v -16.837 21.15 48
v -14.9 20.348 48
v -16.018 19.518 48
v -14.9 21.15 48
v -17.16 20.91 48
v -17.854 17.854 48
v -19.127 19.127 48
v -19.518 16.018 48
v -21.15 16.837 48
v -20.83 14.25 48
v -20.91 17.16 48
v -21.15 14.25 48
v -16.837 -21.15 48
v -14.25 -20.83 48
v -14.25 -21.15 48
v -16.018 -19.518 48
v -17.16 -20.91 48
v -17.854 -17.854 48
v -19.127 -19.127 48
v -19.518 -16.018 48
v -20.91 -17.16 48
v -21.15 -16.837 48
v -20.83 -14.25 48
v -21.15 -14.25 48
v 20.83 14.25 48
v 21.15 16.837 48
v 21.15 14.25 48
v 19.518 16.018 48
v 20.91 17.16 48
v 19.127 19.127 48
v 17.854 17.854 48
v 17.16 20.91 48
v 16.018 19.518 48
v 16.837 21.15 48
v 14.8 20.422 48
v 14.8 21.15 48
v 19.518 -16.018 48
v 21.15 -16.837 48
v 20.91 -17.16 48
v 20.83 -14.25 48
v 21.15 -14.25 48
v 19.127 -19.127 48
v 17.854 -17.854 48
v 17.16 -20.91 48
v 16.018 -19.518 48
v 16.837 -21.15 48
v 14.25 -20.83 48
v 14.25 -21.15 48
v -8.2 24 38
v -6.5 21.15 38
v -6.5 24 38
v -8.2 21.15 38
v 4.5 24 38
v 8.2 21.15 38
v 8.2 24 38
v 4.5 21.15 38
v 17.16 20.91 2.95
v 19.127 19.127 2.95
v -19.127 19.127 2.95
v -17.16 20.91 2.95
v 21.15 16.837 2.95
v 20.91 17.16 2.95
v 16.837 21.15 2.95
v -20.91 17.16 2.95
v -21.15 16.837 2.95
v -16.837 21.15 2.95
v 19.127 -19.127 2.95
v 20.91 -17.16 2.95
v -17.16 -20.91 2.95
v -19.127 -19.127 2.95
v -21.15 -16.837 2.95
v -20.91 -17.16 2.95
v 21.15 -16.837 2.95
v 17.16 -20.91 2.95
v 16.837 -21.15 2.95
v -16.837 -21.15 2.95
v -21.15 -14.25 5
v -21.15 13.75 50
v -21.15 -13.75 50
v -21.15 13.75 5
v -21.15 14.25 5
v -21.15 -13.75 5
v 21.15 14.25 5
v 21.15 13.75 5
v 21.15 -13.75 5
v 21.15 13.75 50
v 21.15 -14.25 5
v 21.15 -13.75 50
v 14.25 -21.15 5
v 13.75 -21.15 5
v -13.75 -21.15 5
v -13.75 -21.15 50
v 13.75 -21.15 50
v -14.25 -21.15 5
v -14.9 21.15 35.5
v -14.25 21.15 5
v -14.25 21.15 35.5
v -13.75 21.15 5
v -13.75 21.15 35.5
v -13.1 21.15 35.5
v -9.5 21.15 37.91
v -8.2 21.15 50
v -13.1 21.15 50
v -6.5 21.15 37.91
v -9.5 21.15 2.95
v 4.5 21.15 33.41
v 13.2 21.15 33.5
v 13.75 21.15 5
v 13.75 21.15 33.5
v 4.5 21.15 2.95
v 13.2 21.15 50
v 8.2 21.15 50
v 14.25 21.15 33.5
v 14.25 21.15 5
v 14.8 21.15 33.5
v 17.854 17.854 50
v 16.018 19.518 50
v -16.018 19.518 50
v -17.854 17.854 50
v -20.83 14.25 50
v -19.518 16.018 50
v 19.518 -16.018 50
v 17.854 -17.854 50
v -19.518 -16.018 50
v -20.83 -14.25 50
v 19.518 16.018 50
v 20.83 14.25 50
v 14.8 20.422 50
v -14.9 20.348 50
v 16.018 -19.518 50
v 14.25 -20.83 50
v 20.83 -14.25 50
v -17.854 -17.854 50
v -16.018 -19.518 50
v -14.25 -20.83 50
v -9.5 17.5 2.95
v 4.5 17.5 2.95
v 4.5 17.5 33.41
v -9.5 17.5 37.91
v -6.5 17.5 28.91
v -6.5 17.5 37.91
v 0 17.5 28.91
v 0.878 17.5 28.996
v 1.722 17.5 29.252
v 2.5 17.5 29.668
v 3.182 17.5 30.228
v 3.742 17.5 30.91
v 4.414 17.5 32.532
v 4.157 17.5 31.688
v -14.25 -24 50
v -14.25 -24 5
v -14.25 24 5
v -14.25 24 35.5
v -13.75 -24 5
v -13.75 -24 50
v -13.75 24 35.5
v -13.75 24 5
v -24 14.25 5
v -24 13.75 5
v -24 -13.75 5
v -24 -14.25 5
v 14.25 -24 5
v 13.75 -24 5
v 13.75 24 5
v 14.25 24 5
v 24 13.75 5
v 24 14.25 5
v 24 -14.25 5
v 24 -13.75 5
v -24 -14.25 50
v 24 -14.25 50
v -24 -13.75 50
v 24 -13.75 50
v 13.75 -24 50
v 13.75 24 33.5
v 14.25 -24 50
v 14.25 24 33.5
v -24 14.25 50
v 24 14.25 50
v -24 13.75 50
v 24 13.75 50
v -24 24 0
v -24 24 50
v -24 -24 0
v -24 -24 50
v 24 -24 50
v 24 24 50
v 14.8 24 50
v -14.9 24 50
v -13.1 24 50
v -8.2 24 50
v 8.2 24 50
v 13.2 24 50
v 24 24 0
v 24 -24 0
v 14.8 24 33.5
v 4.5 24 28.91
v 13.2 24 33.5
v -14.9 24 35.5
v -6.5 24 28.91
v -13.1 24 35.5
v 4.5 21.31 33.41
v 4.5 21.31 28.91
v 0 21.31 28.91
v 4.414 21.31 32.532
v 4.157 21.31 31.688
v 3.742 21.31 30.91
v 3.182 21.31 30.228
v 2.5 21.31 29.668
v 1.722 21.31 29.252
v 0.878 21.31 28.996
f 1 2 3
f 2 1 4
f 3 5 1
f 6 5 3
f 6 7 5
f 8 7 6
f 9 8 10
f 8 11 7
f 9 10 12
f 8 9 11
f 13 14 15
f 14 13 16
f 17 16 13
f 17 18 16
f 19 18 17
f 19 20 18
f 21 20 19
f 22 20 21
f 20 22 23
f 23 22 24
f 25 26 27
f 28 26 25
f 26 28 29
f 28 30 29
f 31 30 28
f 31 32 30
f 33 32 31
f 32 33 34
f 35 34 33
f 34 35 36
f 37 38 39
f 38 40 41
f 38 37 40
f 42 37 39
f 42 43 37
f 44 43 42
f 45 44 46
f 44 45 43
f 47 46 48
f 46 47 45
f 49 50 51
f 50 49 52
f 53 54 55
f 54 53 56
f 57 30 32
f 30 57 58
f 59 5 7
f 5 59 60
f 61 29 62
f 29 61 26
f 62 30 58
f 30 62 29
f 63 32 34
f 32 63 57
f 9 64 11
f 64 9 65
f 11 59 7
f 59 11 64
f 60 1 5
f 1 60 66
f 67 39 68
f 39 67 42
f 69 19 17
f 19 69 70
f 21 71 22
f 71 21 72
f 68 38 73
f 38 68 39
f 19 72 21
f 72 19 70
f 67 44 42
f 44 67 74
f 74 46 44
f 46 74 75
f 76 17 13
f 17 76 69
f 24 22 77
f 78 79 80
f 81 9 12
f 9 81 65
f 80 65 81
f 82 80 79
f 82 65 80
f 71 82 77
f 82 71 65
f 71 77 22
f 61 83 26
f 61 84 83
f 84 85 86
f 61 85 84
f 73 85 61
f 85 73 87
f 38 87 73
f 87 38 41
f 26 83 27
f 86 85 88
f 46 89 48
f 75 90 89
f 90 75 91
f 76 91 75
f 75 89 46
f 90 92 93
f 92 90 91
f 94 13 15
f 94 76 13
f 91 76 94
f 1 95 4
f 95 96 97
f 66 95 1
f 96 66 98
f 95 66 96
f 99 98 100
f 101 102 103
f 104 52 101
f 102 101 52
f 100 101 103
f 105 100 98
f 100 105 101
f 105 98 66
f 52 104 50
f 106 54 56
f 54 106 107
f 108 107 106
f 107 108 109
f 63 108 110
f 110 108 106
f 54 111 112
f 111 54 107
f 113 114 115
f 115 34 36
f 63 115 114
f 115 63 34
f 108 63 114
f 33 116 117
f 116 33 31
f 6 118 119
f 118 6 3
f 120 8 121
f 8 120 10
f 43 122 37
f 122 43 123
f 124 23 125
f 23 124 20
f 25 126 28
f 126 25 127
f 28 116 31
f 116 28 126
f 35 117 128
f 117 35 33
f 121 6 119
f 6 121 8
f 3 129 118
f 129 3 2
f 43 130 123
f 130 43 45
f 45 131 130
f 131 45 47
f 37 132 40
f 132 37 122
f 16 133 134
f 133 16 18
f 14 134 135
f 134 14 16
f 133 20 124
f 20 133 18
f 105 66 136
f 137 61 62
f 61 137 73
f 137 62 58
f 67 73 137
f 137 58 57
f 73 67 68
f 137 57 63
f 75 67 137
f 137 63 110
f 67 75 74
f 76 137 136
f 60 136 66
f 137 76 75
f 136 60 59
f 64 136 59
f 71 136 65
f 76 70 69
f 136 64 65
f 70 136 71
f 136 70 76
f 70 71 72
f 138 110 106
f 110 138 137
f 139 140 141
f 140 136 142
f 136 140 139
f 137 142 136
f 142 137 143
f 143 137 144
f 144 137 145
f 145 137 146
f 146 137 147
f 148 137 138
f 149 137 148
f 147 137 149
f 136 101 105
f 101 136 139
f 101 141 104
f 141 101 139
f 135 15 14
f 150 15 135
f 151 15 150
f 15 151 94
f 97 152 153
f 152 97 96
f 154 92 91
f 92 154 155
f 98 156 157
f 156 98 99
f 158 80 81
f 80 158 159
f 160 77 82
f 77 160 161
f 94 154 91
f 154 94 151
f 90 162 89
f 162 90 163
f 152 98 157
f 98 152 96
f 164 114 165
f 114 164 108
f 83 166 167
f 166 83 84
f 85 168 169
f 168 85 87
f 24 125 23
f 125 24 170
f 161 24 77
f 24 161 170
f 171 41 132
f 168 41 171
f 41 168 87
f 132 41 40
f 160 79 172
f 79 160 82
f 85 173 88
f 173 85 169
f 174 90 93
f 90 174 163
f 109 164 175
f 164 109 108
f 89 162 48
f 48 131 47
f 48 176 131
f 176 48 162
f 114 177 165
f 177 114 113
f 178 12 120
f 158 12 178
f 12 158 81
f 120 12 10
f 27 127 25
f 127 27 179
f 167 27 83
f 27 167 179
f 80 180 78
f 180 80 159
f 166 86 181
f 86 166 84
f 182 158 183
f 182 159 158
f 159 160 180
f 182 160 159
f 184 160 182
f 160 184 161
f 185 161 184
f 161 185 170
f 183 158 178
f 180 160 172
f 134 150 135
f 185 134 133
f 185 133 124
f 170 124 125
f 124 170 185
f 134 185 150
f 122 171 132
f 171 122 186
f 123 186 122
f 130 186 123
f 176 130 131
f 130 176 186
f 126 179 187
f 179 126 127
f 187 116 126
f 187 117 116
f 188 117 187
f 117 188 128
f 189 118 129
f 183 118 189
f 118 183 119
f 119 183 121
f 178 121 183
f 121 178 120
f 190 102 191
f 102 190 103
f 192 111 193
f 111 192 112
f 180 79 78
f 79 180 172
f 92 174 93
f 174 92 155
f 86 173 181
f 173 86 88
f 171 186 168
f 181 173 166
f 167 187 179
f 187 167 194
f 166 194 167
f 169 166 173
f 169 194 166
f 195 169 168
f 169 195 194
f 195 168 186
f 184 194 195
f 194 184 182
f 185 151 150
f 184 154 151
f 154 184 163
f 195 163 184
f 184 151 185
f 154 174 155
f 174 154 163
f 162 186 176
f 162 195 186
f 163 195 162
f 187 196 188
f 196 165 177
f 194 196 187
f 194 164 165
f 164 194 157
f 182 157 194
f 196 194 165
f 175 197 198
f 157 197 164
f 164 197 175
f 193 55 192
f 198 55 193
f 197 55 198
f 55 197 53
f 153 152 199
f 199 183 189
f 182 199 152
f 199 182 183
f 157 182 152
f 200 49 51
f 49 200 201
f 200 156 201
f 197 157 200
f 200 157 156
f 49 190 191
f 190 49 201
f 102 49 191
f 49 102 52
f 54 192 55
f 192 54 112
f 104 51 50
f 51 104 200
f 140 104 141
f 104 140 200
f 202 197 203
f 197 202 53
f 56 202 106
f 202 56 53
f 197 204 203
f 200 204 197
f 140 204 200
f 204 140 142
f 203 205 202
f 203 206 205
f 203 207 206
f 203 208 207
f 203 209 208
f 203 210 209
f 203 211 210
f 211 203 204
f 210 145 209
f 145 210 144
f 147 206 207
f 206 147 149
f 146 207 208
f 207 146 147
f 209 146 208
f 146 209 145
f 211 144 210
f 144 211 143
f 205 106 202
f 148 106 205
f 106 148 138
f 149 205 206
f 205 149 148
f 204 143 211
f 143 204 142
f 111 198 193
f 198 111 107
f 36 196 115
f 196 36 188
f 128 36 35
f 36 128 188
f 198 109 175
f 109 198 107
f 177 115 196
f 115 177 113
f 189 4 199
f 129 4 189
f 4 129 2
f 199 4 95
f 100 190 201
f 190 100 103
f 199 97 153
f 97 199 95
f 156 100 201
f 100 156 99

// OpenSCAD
module electronics_case() {
    difference() {
        translate([0, 0, 25]) cube([42+2*3, 42+2*3, 50], center=true);
        difference() {
            translate([0, 0, 50-2-5]) cube([42.3, 42.3, 10], center=true);
            difference() {
                translate([0, 0, 43]) cube([100, 100, 10], center=true);
                translate([0, 0, 35]) cylinder(d=54.1, h=20, $fn=64);
            }
        }
        difference() {
            translate([0, 0, 50-1]) cube([42.3, 42.3, 8], center=true);
            difference() {
                translate([0, 0, 49]) cube([100, 100, 8], center=true);
                translate([0, 0, 40]) cylinder(d=50.5, h=20, $fn=64);
            }
        }
        translate([-16.4/2, 20, 38]) cube([16.4, 10, 12.5]);
        difference() {
            translate([0, 0, 3+35/2]) cube([42.3, 42.3, 35.1], center=true);
            difference() {
                cube([100, 100, 80], center=true);
                cylinder(d=54.1, h=40, $fn=64);
            }
            translate([0, (42+2*3)/2-6.5, 0]) cube([9/2, 6.5, 28.91+9/2]);
            translate([-9/2-5, (42+2*3)/2-6.5, 0]) cube([10, 6.5, 28.91+9]);
        }
        for(i=[-1, 1]) {
            translate([i*14, 0, 30]) cube([0.5, 100, 50], center=true);
            translate([0, i*14, 30]) cube([100, 0.5, 50], center=true);
        }
        translate([-9/2-2, (42+2*3)/2-2.69, 28.91]) cube([11, 2.7, 9.1]); 
        translate([0, 0, 28.91+9/2]) rotate([-90, 0, 0]) cylinder(d=9, h=50, $fn=32);
        translate([0, (42+2*3)/2-6.5, 28.91+9/2]) cube([9/2, 6.5, 9/2+0.2]);
        translate([-9/2-2, (42+2*3)/2-10, 28.91]) cube([11-9/2, 10, 9.1]);
        translate([14, 22, 42]) cube([1.6, 10, 17], center=true);
        translate([-14, 22, 43]) cube([1.8, 10, 15], center=true);
    }
}

electronics_case();
